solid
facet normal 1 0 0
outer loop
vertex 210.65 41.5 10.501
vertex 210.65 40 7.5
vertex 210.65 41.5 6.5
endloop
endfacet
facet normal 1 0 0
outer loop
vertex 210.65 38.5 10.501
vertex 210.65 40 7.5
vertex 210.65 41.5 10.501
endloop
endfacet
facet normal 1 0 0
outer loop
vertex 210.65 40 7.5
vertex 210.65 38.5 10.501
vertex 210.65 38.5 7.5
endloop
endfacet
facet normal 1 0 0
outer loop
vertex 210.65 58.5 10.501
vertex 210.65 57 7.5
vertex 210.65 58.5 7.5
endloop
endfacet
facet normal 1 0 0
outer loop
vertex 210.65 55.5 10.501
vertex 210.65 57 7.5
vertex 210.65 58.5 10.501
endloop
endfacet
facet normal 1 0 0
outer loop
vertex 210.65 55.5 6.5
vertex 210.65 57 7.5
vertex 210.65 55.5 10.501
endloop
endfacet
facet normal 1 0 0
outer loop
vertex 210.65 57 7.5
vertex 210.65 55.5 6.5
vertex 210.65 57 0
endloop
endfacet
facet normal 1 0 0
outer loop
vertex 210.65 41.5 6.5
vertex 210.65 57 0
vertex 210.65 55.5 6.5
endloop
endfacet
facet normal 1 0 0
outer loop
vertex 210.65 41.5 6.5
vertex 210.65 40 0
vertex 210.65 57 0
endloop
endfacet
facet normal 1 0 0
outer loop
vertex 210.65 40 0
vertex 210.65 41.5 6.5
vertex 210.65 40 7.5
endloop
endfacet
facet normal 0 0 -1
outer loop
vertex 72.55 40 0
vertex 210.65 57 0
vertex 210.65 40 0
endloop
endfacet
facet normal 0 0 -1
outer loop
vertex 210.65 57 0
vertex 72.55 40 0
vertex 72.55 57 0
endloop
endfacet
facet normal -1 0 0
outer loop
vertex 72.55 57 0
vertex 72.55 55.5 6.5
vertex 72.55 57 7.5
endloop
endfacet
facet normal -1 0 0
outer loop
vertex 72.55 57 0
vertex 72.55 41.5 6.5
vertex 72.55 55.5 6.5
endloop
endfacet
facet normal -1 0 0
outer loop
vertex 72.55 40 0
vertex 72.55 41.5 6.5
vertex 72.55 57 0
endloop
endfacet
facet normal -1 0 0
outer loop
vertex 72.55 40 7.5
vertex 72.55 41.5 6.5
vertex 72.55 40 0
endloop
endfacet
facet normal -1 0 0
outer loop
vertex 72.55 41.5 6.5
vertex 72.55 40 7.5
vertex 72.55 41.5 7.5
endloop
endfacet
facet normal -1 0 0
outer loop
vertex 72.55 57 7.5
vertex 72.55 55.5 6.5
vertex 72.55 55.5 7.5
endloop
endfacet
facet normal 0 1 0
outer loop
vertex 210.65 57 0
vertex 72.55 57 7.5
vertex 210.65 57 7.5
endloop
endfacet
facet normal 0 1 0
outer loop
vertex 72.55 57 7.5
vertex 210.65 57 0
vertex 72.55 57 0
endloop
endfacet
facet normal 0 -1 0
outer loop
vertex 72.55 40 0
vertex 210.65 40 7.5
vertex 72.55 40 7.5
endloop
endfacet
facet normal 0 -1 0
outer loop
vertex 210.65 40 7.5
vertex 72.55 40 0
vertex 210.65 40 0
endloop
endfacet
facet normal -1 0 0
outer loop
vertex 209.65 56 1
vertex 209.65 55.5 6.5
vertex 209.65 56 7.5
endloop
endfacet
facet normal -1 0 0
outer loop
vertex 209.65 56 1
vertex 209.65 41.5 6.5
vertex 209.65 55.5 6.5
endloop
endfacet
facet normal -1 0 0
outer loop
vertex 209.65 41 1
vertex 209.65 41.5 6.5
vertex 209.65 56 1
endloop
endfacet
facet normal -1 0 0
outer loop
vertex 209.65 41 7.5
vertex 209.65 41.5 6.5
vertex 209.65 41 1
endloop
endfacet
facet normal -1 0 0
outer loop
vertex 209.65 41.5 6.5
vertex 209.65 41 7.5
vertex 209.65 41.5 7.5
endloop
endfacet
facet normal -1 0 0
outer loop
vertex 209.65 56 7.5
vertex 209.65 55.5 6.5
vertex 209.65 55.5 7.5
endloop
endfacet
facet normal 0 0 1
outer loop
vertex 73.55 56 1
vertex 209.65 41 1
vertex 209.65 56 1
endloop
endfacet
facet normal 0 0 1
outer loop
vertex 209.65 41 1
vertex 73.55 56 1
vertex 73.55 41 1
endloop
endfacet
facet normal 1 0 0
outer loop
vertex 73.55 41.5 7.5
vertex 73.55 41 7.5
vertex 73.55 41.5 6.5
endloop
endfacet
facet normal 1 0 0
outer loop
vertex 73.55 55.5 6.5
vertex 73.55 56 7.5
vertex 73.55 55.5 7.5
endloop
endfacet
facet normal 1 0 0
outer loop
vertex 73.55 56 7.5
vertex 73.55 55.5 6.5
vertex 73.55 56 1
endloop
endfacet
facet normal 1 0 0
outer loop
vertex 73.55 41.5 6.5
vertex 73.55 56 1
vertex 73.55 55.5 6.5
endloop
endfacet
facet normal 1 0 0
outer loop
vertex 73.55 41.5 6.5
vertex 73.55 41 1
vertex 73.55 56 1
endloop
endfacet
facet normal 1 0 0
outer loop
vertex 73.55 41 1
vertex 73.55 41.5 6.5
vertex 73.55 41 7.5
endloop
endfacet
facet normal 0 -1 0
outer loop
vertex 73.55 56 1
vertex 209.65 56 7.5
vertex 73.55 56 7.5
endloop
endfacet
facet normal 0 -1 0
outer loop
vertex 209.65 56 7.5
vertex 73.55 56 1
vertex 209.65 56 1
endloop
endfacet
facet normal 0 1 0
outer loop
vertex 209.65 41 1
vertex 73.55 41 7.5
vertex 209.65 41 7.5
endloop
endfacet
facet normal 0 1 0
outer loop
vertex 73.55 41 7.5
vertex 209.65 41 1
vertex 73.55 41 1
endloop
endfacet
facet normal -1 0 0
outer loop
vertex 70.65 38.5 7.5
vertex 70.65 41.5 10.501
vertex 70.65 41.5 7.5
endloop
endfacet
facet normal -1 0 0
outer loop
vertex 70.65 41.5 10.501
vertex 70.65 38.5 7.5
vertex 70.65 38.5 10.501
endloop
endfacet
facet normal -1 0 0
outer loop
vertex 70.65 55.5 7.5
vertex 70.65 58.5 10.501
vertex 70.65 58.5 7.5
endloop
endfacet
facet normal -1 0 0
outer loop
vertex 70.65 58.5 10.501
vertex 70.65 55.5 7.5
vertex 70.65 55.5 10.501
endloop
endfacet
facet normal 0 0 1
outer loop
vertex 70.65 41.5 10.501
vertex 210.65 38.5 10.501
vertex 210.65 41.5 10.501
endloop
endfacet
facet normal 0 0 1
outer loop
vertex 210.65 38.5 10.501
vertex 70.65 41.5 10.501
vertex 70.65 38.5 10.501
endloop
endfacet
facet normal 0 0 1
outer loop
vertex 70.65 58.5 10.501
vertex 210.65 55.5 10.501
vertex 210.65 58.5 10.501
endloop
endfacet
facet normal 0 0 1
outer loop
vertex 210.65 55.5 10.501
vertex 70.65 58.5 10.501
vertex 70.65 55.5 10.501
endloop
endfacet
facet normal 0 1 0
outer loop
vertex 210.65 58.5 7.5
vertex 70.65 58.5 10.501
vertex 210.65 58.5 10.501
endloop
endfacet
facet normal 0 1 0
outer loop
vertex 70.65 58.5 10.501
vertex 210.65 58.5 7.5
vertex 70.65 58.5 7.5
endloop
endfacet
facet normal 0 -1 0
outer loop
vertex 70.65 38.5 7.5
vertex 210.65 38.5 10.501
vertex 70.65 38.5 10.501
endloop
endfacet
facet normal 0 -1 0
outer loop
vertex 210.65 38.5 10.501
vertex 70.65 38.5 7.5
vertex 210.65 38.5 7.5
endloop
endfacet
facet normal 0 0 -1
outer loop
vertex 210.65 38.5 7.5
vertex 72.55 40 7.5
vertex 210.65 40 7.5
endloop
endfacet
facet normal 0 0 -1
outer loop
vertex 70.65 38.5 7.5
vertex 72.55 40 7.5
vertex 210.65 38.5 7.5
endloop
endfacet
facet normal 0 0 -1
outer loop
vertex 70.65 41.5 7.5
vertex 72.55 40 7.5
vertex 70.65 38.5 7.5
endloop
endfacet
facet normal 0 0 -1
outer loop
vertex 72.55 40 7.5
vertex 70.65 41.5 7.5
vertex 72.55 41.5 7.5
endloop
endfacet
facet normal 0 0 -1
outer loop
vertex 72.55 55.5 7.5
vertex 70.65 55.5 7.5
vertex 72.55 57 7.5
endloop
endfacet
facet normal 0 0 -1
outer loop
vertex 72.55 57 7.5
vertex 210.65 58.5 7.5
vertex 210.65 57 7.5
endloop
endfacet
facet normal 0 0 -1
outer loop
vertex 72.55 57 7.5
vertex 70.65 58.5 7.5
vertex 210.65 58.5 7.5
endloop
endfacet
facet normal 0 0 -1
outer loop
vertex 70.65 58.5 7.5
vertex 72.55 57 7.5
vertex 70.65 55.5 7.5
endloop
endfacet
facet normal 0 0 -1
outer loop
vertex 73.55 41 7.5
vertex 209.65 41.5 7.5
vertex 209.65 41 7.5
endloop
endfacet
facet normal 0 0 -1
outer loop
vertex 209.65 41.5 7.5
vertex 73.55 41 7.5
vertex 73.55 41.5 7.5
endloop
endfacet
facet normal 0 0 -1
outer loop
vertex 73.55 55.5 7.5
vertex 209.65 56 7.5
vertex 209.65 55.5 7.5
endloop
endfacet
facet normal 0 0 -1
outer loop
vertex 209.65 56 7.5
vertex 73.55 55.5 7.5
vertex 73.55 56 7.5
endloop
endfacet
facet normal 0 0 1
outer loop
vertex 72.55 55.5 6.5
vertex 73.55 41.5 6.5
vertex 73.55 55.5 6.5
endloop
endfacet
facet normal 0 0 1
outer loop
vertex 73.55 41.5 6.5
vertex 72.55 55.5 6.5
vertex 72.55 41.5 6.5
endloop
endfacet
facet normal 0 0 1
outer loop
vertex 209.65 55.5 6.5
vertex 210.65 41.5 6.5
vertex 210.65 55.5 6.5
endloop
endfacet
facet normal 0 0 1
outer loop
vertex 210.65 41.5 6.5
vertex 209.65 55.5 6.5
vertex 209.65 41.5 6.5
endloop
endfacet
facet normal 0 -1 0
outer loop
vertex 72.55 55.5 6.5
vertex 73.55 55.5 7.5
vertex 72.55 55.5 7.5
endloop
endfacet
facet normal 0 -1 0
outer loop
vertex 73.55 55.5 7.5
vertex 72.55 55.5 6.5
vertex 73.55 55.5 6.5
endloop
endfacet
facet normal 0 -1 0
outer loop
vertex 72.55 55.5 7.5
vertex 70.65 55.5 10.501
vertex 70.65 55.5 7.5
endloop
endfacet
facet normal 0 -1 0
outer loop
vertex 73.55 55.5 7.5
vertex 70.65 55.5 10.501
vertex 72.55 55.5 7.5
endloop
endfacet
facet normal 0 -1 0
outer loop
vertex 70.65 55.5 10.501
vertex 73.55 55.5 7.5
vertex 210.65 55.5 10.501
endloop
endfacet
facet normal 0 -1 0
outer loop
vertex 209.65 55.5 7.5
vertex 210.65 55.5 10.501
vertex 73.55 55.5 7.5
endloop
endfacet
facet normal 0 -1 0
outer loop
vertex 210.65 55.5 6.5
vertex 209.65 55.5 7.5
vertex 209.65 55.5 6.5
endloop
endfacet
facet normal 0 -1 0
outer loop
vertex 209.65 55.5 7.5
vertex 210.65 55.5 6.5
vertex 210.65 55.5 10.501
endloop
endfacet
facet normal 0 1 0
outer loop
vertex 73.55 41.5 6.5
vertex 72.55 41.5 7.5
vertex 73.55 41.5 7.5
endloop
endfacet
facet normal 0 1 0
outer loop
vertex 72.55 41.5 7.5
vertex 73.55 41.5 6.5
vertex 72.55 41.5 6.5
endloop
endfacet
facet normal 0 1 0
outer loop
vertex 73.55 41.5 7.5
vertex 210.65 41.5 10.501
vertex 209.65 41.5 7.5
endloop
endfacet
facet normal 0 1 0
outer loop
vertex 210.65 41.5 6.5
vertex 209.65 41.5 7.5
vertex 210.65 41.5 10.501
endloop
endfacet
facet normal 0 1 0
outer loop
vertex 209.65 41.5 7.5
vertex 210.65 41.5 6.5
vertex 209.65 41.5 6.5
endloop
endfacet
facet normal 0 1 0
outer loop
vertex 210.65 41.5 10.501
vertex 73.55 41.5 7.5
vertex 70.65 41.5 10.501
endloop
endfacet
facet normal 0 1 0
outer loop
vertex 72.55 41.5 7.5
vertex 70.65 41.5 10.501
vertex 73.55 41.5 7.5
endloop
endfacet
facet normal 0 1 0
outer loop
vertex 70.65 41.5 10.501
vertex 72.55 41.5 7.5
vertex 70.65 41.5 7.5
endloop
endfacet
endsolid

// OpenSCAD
// Archivo: chasis.scad
// Pega tu código OpenSCAD aquí.
// Archivo: Final.scad
// Tapa SIMPLE con paredes internas + AGARRE LATERAL
// ENCAJE 100% GARANTIZADO

// === MODO DE IMPRESIÓN ===
print_mode = "lid";  // "base", "lid", "both"

// === PARÁMETROS ===
phone_height = 160.1;
unfolded_width = 135.1;
unfolded_thickness = 14;
case_thickness = 2;
corner_radius = 3;
tolerance = 0.5;

base_thick = 10;
base_depth = 80;
base_width = unfolded_width + 2 * case_thickness + 2 * corner_radius;

// === TAPA ===
lid_wall = 1.0;           // grosor pared
lid_top = 1.0;            // grosor tapa
lid_depth = 8.5;          // altura inserción
lid_extra_tolerance = 0.5; // +0.5 mm total (0.25 por lado)

// === AGARRE LATERAL ===
grip_width = 20;          // ancho del agarre
grip_height = 3.0;        // altura del agarre
grip_depth = 140.0;         // cuánto sobresale
grip_offset = 2.0;        // distancia desde el borde superior

// === CHASIS (TU CÓDIGO ORIGINAL) ===
module slide_in_chassis() {
    difference() {
        minkowski() {
            translate([-case_thickness, -case_thickness, -case_thickness])
            cube([unfolded_width + 2*case_thickness, 
                  phone_height + case_thickness,
                  unfolded_thickness + 2*case_thickness]);
            sphere(r = corner_radius);
        }
        
        translate([0, 0, 0])
        hull() {
            cube([unfolded_width + tolerance, phone_height + 10, unfolded_thickness + tolerance]);
            translate([guide_bevel, 0, guide_bevel])
                cube([unfolded_width + tolerance - 2*guide_bevel, phone_height + 10, unfolded_thickness + tolerance - 2*guide_bevel]);
        }
        
        // ... (cámara, USB, botones, ventilación) → intacto
    }
}

module unified_piece() {
    difference() {
        union() {
            cube([base_width, base_depth, base_thick]);
            translate([corner_radius, base_depth / 2 + unfolded_thickness / 2, base_thick + case_thickness])
                rotate([90, 0, 0])
                slide_in_chassis();
        }
        
        translate([corner_radius, base_depth / 2 + unfolded_thickness / 2, base_thick + case_thickness])
            rotate([90, 0, 0])
            translate([camera_x - usb_port_length / 2, -(case_thickness + corner_radius + 7), unfolded_thickness / 2 - usb_port_width / 2])
            cube([usb_port_length, case_thickness + corner_radius + 10 + base_thick + 5, usb_port_width]);
    }
}

// === TAPA CON AGARRE LATERAL ===
module lid_with_grip() {
    chasis_inner_w = unfolded_width + tolerance;
    chasis_inner_d = unfolded_thickness + tolerance;
    
    lid_outer_w = chasis_inner_w + lid_extra_tolerance;
    lid_outer_d = chasis_inner_d + lid_extra_tolerance;

    difference() {
        union() {
            // === TAPA BASE ===
            difference() {
                cube([lid_outer_w + 2*lid_wall, lid_outer_d + 2*lid_wall, lid_depth + lid_top]);
                translate([lid_wall, lid_wall, lid_top])
                    cube([lid_outer_w, lid_outer_d, lid_depth + 0.1]);
            }

            // === AGARRE LATERAL (pestaña) ===
            translate([
                lid_outer_w + 2*lid_wall - grip_depth,  // sobresale hacia afuera
                (lid_outer_d + 2*lid_wall - grip_width) / 2,
                lid_depth + lid_top - grip_offset
            ])
            hull() {
                cube([grip_depth, grip_width, 0.001]);
                translate([0, 0, grip_height])
                    cube([grip_depth, grip_width, 0.001]);
            }
        }

        // === OPCIONAL: hueco bajo el agarre para dedo ===
        translate([
            lid_outer_w + 2*lid_wall - grip_depth - 1,
            (lid_outer_d + 2*lid_wall - grip_width) / 2 + 3,
            lid_depth + lid_top - grip_offset - 1
        ])
        cube([grip_depth + 2, grip_width - 6, grip_height + 2]);
    }
}

// === RENDER ===
if (print_mode == "base") {
    unified_piece();
}
else if (print_mode == "lid") {
    translate([base_width/2, base_depth/2, 0]) lid_with_grip();
}
else if (print_mode == "both") {
    unified_piece();
    translate([corner_radius, base_depth/2 + unfolded_thickness/2, base_thick + case_thickness + phone_height])
        rotate([90, 0, 0])
        translate([0, lid_depth + lid_top, 0])
        lid_with_grip();
}
